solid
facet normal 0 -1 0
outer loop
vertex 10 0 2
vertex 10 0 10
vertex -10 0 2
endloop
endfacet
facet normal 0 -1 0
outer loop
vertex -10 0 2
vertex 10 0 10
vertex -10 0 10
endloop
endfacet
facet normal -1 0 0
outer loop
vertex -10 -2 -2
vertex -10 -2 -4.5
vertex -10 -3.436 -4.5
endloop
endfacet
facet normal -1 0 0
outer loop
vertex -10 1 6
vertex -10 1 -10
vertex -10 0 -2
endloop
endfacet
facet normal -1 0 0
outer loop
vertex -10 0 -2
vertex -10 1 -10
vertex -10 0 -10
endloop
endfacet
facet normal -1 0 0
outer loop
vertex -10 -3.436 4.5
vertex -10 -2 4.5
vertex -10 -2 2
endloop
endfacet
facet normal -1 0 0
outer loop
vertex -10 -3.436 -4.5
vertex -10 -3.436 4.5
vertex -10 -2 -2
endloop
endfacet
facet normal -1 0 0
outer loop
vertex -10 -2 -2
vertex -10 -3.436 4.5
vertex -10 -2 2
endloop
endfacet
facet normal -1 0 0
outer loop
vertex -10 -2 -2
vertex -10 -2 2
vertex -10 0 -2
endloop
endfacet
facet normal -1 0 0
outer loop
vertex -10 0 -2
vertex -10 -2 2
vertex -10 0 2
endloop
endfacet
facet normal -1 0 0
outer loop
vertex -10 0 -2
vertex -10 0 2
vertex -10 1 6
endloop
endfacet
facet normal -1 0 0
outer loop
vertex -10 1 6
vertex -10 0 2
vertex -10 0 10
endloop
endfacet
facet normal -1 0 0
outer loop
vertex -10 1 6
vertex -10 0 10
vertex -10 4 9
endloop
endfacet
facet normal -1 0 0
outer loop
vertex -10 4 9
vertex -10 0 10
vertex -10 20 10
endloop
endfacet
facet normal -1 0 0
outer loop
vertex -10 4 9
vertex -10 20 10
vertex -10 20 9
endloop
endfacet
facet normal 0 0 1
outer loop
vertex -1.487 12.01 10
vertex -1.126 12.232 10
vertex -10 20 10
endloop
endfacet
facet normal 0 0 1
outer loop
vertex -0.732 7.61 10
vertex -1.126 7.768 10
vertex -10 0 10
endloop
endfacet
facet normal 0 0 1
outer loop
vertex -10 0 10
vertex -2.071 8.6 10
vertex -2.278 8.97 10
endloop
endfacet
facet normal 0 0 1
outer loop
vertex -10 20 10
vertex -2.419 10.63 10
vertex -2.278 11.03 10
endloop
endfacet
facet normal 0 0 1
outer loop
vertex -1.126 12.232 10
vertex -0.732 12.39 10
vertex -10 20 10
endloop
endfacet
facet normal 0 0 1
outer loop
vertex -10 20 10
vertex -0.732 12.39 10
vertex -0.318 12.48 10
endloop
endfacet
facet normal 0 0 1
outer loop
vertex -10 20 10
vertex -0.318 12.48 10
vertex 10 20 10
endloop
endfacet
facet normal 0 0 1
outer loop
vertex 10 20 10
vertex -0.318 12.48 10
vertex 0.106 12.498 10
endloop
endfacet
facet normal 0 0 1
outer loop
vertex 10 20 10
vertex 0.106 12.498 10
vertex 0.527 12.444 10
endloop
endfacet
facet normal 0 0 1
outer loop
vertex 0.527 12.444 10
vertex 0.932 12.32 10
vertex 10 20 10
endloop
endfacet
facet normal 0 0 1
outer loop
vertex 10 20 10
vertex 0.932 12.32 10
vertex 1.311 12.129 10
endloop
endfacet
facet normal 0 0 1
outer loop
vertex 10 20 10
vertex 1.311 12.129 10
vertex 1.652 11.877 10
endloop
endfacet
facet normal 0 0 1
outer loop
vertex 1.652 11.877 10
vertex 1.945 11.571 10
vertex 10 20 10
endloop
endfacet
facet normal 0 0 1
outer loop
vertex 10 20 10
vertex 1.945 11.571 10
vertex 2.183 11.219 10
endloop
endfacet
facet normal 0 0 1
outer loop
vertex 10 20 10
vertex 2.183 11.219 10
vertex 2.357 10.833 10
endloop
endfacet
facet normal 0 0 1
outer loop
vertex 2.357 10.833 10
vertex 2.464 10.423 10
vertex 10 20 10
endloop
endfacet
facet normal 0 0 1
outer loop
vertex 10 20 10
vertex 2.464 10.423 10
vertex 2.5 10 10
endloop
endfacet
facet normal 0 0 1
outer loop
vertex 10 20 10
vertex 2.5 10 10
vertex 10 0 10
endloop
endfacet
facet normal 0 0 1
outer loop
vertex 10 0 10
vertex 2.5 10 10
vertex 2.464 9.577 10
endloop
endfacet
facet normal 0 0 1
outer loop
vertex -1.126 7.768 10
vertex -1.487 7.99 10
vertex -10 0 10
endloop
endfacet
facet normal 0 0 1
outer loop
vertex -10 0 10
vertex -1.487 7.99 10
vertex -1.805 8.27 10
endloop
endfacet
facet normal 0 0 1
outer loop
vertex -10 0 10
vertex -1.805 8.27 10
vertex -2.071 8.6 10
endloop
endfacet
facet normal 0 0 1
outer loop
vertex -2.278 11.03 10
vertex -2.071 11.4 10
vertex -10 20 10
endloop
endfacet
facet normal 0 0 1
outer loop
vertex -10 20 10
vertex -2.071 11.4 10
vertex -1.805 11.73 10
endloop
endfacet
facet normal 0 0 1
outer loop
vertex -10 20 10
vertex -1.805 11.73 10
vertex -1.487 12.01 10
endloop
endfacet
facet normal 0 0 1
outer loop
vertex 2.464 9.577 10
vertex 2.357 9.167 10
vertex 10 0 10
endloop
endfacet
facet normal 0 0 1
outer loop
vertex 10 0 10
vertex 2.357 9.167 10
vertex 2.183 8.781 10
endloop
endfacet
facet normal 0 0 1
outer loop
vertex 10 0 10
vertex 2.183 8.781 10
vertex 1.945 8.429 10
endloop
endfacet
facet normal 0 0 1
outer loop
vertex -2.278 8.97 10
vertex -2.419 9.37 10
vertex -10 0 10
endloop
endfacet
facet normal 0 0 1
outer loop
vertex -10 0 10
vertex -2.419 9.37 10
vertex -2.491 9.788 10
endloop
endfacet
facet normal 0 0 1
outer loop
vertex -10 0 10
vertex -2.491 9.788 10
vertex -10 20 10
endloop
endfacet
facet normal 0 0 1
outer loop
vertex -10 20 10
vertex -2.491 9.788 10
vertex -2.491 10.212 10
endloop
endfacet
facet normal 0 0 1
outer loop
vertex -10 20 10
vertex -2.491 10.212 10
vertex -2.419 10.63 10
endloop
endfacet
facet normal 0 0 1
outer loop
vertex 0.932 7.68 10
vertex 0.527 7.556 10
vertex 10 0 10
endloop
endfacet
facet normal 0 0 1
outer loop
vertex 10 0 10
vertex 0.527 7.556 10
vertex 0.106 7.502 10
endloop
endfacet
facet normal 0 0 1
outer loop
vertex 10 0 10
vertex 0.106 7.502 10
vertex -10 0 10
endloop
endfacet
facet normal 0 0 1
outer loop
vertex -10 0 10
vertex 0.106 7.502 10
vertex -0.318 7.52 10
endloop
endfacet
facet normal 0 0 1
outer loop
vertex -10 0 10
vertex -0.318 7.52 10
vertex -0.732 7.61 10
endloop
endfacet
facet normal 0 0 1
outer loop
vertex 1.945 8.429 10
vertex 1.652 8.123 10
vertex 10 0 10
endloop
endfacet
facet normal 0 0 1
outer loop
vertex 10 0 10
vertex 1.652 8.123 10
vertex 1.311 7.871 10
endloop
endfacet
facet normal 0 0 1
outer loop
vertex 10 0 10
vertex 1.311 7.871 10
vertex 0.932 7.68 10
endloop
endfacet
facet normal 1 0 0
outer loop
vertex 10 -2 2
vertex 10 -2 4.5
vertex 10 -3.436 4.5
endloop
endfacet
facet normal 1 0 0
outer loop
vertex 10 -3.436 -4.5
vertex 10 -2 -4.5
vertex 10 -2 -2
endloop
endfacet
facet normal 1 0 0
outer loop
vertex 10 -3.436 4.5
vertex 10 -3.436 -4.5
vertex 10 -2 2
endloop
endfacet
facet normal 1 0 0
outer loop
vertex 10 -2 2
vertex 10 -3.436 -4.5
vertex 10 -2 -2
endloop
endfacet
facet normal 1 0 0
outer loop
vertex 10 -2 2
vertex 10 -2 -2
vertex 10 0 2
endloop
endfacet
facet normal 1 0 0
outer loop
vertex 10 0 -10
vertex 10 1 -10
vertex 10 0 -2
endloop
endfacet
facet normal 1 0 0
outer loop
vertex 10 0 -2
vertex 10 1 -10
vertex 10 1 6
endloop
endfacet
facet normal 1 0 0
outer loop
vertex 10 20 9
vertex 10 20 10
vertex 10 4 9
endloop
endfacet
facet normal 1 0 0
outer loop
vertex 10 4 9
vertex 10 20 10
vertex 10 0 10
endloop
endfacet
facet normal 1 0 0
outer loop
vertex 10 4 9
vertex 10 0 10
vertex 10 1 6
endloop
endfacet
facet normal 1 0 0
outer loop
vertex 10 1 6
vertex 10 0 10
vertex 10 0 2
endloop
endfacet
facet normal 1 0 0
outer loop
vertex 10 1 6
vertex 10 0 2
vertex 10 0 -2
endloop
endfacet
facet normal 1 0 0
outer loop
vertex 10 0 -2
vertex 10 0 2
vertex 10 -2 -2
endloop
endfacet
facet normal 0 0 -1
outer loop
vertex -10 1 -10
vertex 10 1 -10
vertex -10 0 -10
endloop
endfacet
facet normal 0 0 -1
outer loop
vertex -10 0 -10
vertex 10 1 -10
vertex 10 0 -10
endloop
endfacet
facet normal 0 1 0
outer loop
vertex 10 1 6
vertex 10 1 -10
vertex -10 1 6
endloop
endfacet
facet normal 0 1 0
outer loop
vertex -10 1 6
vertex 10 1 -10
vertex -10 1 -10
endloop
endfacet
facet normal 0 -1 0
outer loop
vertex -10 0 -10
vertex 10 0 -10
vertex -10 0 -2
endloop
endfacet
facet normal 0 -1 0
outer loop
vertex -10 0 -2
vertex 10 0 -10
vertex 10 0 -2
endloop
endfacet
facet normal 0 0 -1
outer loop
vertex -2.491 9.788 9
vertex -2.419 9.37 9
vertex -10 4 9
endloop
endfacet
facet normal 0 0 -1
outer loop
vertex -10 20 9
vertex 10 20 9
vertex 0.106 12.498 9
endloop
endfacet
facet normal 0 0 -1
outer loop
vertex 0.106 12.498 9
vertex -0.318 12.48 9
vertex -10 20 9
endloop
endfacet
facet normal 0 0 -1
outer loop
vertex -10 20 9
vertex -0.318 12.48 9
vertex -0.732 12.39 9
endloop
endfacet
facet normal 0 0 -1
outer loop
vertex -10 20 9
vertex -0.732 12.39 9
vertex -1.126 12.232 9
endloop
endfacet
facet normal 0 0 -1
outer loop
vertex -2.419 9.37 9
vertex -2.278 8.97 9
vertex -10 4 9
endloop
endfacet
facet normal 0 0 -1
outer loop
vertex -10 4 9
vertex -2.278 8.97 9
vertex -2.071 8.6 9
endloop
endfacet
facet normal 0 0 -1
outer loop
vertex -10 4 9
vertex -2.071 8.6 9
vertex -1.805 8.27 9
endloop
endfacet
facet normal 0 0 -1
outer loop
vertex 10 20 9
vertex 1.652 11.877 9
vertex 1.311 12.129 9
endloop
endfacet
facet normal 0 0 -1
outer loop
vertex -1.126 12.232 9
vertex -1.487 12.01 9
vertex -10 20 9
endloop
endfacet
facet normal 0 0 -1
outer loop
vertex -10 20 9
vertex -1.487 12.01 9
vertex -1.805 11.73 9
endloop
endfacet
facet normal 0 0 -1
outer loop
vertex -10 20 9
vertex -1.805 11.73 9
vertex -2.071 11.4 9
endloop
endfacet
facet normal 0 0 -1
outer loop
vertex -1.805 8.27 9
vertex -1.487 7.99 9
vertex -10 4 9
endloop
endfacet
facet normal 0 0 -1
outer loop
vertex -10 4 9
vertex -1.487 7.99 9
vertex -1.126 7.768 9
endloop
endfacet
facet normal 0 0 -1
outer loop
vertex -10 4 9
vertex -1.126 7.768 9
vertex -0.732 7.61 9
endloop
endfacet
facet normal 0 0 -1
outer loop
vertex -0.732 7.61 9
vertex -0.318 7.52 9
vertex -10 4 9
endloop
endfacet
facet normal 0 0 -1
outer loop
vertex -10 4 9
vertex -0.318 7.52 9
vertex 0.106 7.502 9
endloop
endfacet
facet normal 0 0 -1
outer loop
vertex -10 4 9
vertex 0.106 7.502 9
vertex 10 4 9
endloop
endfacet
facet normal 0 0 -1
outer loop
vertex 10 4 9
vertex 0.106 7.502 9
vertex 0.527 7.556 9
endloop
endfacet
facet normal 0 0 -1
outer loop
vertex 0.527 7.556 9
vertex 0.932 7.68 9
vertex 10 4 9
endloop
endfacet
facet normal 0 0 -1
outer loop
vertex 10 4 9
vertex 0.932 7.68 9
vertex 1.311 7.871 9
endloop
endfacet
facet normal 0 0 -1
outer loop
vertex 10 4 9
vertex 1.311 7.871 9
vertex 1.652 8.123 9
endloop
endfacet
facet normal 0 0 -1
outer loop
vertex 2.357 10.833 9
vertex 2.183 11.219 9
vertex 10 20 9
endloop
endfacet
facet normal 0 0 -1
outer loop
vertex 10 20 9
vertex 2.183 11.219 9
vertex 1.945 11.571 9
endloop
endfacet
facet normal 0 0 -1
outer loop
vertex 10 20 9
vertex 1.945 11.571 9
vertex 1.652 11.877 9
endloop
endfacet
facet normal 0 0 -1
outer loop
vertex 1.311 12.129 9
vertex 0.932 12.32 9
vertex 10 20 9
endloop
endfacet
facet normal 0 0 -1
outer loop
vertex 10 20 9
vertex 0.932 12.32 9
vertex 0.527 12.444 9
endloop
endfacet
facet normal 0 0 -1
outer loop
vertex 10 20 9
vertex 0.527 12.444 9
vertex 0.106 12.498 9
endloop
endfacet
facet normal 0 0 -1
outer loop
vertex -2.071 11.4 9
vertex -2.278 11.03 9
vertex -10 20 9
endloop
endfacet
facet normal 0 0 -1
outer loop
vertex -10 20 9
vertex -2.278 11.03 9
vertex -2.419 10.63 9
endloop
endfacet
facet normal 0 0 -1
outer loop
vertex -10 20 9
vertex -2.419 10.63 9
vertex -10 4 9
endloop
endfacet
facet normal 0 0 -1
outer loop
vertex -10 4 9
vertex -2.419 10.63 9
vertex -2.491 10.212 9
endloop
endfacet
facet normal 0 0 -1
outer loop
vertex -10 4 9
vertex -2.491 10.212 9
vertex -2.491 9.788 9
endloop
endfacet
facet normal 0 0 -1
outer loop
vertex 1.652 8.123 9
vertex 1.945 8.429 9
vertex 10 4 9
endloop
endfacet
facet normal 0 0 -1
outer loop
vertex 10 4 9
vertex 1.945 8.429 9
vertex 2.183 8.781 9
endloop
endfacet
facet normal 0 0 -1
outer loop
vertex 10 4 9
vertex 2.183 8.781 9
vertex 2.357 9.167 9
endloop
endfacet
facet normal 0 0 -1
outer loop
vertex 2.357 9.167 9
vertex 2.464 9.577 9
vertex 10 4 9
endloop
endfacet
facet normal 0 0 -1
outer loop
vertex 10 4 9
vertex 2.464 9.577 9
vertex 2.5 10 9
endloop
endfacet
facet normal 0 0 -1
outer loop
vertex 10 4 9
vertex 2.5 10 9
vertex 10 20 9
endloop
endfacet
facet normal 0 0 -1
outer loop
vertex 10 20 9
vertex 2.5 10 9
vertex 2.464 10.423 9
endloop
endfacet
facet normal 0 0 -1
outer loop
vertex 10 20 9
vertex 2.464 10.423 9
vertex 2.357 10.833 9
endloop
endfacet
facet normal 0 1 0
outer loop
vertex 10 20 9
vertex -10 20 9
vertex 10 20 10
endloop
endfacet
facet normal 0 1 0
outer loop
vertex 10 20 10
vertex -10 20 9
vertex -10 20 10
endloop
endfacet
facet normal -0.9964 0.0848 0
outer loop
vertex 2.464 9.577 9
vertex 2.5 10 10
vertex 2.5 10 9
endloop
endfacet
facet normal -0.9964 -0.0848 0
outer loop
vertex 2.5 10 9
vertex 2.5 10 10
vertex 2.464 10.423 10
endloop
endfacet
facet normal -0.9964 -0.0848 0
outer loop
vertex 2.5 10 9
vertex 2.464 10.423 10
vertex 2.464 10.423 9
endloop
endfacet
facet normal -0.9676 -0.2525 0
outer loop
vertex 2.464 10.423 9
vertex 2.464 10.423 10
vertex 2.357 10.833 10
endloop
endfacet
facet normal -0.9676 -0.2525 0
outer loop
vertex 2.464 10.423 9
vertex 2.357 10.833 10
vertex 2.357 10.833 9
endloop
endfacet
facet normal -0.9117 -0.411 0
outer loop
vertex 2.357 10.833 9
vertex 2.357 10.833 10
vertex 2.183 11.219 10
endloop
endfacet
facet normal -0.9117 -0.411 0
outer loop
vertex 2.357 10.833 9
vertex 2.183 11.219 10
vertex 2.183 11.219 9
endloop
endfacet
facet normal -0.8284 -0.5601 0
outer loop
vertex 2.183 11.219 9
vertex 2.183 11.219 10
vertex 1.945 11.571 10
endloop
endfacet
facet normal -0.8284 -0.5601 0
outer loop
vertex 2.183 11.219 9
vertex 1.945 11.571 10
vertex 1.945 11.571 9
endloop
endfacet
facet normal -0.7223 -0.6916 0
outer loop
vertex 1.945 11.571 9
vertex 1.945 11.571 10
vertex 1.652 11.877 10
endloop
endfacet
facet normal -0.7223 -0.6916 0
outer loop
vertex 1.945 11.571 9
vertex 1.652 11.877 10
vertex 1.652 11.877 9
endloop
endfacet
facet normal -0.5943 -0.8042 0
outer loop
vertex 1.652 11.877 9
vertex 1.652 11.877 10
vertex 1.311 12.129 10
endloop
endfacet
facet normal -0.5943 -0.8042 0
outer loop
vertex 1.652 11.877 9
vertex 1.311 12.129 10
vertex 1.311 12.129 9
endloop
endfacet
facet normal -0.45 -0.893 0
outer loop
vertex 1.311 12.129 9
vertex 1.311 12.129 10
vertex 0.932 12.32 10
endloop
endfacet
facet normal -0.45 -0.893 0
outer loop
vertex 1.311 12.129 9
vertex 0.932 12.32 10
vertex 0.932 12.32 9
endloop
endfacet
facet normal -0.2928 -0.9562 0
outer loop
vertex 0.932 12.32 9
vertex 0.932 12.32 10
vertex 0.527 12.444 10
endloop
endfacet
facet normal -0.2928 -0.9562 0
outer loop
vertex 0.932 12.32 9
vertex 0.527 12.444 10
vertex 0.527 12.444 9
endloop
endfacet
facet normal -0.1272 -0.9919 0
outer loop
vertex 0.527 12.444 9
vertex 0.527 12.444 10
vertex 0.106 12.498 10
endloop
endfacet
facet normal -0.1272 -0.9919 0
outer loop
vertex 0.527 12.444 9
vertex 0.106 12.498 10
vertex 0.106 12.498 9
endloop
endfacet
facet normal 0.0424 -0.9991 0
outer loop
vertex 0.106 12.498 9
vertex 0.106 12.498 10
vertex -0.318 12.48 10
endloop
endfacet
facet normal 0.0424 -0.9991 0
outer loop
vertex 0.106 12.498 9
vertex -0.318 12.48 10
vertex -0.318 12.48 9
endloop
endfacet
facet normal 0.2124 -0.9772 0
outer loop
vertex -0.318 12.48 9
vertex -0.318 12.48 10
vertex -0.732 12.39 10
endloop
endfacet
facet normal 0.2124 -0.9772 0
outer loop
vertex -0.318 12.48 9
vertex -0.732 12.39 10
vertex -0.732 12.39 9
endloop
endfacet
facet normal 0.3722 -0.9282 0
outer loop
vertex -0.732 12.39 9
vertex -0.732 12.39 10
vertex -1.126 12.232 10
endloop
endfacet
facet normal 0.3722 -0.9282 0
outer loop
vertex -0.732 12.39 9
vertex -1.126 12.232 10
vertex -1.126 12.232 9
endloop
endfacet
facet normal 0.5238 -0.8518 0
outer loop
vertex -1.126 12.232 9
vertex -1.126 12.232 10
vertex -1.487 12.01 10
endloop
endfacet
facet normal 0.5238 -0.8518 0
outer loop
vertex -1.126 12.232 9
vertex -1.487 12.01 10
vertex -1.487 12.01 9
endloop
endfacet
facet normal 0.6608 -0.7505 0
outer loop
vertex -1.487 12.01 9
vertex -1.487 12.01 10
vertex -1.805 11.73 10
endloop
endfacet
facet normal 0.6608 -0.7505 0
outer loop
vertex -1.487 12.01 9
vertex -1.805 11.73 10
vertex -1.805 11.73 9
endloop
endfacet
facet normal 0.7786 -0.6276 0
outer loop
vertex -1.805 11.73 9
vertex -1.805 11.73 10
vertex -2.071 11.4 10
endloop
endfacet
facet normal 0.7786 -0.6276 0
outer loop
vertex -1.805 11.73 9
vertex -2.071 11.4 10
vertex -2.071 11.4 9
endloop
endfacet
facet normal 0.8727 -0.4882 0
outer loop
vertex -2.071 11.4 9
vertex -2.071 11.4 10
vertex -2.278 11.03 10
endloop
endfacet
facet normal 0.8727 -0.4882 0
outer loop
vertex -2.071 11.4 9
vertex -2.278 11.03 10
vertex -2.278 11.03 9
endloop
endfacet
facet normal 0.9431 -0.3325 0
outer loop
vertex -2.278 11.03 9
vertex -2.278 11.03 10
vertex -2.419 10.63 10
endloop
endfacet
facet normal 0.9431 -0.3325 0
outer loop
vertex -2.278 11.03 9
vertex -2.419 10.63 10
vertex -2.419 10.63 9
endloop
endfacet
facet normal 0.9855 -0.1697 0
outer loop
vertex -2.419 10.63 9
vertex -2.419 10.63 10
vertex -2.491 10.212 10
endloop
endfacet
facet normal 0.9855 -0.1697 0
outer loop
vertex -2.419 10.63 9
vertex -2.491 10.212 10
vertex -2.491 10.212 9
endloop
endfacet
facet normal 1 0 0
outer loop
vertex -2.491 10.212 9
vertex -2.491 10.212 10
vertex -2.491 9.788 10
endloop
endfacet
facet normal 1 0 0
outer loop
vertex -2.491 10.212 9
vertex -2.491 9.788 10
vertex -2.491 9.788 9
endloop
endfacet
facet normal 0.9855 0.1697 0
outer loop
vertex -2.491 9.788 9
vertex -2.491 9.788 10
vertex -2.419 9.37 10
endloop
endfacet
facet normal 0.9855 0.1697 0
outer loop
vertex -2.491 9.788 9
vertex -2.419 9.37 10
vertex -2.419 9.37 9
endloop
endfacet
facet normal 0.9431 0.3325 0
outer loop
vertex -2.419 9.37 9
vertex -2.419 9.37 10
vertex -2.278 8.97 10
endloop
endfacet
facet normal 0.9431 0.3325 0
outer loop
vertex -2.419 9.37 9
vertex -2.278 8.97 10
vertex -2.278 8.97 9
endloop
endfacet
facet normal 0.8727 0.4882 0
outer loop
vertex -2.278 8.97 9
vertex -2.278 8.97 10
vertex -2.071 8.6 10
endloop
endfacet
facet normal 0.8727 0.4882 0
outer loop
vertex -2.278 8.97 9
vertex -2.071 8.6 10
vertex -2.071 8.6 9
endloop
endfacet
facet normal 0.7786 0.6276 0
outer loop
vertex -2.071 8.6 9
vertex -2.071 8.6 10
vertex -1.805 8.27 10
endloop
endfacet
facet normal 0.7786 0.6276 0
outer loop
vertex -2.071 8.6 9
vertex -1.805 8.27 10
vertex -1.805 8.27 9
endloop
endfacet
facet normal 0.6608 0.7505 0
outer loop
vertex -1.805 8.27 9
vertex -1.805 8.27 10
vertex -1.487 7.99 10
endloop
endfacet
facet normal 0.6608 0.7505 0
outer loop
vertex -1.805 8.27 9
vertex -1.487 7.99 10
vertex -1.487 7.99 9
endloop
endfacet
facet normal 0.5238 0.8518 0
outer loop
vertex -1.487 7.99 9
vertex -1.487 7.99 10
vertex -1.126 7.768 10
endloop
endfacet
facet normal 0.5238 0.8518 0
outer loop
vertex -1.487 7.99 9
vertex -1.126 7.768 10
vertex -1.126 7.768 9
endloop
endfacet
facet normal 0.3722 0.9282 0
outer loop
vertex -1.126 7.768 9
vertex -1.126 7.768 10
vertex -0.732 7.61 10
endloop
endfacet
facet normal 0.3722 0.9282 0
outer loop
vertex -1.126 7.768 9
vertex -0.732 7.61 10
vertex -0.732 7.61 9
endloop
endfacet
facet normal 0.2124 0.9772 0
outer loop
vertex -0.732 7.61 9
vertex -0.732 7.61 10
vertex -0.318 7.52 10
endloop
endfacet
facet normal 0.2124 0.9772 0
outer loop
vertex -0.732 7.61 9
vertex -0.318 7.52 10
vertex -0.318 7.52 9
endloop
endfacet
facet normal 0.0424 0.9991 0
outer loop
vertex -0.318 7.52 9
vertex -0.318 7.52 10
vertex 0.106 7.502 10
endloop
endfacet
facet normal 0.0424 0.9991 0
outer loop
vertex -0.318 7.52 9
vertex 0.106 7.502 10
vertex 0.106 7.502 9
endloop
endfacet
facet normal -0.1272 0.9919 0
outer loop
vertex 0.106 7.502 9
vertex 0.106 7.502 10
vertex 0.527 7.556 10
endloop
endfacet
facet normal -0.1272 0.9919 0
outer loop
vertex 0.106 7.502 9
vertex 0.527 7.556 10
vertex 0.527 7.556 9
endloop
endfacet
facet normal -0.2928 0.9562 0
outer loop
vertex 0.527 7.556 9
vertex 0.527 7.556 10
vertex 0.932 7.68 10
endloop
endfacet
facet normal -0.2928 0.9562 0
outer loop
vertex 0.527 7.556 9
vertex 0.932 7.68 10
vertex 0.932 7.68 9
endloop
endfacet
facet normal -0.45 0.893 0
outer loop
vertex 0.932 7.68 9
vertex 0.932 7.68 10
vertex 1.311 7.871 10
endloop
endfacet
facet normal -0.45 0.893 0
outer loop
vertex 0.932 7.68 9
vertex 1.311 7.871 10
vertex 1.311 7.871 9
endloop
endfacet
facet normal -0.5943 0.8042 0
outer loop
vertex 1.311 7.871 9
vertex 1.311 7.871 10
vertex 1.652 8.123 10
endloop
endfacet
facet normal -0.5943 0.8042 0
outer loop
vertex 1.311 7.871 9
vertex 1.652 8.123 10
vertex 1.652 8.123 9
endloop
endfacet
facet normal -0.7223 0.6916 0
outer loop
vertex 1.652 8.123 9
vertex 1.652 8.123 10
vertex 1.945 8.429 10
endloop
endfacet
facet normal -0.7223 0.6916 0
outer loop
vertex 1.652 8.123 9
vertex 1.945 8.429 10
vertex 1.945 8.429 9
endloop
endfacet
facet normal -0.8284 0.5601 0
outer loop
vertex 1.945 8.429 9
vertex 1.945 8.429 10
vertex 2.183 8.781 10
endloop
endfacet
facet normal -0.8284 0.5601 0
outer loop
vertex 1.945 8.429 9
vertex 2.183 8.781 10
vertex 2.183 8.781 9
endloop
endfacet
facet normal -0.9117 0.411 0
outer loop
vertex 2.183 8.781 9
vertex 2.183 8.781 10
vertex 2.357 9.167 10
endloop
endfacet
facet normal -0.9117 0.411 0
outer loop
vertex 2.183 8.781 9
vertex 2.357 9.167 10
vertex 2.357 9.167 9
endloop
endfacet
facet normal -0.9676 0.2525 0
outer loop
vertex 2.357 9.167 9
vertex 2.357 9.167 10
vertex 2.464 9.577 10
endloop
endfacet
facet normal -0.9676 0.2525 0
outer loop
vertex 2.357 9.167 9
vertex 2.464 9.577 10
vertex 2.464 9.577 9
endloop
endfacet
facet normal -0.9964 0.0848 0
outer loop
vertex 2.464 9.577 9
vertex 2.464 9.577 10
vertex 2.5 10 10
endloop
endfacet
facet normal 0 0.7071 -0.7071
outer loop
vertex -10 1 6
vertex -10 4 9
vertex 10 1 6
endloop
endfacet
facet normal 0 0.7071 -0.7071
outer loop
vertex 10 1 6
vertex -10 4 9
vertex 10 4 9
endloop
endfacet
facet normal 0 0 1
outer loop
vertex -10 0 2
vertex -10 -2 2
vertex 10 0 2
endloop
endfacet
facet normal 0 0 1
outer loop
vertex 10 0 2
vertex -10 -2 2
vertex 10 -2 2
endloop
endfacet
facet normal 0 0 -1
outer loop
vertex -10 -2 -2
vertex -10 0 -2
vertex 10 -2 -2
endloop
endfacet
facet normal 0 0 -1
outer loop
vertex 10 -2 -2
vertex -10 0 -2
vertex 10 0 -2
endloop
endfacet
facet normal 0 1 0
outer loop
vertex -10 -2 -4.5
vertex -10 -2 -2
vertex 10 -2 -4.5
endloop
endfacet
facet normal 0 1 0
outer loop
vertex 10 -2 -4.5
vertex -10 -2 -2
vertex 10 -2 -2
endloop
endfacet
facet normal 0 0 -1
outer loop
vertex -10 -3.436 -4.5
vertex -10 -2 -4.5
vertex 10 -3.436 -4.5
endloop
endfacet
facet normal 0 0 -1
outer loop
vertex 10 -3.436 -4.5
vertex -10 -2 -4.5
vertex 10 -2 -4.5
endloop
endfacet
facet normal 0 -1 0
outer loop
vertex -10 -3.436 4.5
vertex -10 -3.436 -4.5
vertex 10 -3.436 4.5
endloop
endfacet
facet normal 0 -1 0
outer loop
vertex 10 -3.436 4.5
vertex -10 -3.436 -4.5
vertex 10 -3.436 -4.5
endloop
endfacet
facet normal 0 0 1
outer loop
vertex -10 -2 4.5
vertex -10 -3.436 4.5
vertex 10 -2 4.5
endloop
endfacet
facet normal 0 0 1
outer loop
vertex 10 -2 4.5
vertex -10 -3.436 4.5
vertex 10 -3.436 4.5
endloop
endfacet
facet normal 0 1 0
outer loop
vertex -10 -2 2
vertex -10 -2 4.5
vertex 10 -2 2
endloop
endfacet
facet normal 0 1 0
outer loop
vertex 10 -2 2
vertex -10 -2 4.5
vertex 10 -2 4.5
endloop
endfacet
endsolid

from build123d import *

# Parameters (mm, degrees)
SKETCH1_W           = 20
SKETCH1_H           = 20
BOSS_EXTRUDE1_DEPTH = 1
SKETCH2_W           = 20
SKETCH2_H           = 20
SKETCH2_R           = 2.5
BOSS_EXTRUDE2_DEPTH = 1
BOSS_EXTRUDE3_DEPTH = 20
BOSS_EXTRUDE4_START = -19
BOSS_EXTRUDE4_DEPTH = 1
BOSS_EXTRUDE5_DEPTH = 20


with BuildPart() as part:
    # Sketch1 → Boss-Extrude1 (new body)
    with BuildSketch(Plane(origin=(0, 0, 0), x_dir=(1, 0, 0), z_dir=(0, 1, 0))):
        Rectangle(SKETCH1_W, SKETCH1_H)
    extrude(amount=BOSS_EXTRUDE1_DEPTH)

    # Sketch2 → Boss-Extrude2 (add)
    with BuildSketch(Plane.XY.offset(10)):
        with Locations((0, 10)):
            Rectangle(SKETCH2_W, SKETCH2_H)
        with Locations((0, 10)):
            Circle(SKETCH2_R, mode=Mode.SUBTRACT)
    extrude(amount=-BOSS_EXTRUDE2_DEPTH)

    # Sketch3 → Boss-Extrude3 (add)
    with BuildSketch(Plane(origin=(10, 0, 0), x_dir=(0, 0, -1), z_dir=(1, 0, 0))):
        Polygon((-9, 4), (-6, 1), (-9, 1), align=None)
    extrude(amount=-BOSS_EXTRUDE3_DEPTH)

    # Sketch3<2> → Boss-Extrude4 (add)
    with BuildSketch(Plane(origin=(10, 0, 0), x_dir=(0, 0, -1), z_dir=(1, 0, 0)).offset(BOSS_EXTRUDE4_START)):
        Polygon((-9, 4), (-6, 1), (-9, 1), align=None)
    extrude(amount=-BOSS_EXTRUDE4_DEPTH)

    # Sketch4 → Boss-Extrude5 (add)
    with BuildSketch(Plane(origin=(10, 0, 0), x_dir=(0, 0, -1), z_dir=(1, 0, 0))):
        Polygon((-2, 0), (-2, -2), (-4.5, -2), (-4.5, -3.436102186), (4.5, -3.436102186), (4.5, -2), (2, -2), (2, 0), align=None)
    extrude(amount=-BOSS_EXTRUDE5_DEPTH)


solid = part.part
